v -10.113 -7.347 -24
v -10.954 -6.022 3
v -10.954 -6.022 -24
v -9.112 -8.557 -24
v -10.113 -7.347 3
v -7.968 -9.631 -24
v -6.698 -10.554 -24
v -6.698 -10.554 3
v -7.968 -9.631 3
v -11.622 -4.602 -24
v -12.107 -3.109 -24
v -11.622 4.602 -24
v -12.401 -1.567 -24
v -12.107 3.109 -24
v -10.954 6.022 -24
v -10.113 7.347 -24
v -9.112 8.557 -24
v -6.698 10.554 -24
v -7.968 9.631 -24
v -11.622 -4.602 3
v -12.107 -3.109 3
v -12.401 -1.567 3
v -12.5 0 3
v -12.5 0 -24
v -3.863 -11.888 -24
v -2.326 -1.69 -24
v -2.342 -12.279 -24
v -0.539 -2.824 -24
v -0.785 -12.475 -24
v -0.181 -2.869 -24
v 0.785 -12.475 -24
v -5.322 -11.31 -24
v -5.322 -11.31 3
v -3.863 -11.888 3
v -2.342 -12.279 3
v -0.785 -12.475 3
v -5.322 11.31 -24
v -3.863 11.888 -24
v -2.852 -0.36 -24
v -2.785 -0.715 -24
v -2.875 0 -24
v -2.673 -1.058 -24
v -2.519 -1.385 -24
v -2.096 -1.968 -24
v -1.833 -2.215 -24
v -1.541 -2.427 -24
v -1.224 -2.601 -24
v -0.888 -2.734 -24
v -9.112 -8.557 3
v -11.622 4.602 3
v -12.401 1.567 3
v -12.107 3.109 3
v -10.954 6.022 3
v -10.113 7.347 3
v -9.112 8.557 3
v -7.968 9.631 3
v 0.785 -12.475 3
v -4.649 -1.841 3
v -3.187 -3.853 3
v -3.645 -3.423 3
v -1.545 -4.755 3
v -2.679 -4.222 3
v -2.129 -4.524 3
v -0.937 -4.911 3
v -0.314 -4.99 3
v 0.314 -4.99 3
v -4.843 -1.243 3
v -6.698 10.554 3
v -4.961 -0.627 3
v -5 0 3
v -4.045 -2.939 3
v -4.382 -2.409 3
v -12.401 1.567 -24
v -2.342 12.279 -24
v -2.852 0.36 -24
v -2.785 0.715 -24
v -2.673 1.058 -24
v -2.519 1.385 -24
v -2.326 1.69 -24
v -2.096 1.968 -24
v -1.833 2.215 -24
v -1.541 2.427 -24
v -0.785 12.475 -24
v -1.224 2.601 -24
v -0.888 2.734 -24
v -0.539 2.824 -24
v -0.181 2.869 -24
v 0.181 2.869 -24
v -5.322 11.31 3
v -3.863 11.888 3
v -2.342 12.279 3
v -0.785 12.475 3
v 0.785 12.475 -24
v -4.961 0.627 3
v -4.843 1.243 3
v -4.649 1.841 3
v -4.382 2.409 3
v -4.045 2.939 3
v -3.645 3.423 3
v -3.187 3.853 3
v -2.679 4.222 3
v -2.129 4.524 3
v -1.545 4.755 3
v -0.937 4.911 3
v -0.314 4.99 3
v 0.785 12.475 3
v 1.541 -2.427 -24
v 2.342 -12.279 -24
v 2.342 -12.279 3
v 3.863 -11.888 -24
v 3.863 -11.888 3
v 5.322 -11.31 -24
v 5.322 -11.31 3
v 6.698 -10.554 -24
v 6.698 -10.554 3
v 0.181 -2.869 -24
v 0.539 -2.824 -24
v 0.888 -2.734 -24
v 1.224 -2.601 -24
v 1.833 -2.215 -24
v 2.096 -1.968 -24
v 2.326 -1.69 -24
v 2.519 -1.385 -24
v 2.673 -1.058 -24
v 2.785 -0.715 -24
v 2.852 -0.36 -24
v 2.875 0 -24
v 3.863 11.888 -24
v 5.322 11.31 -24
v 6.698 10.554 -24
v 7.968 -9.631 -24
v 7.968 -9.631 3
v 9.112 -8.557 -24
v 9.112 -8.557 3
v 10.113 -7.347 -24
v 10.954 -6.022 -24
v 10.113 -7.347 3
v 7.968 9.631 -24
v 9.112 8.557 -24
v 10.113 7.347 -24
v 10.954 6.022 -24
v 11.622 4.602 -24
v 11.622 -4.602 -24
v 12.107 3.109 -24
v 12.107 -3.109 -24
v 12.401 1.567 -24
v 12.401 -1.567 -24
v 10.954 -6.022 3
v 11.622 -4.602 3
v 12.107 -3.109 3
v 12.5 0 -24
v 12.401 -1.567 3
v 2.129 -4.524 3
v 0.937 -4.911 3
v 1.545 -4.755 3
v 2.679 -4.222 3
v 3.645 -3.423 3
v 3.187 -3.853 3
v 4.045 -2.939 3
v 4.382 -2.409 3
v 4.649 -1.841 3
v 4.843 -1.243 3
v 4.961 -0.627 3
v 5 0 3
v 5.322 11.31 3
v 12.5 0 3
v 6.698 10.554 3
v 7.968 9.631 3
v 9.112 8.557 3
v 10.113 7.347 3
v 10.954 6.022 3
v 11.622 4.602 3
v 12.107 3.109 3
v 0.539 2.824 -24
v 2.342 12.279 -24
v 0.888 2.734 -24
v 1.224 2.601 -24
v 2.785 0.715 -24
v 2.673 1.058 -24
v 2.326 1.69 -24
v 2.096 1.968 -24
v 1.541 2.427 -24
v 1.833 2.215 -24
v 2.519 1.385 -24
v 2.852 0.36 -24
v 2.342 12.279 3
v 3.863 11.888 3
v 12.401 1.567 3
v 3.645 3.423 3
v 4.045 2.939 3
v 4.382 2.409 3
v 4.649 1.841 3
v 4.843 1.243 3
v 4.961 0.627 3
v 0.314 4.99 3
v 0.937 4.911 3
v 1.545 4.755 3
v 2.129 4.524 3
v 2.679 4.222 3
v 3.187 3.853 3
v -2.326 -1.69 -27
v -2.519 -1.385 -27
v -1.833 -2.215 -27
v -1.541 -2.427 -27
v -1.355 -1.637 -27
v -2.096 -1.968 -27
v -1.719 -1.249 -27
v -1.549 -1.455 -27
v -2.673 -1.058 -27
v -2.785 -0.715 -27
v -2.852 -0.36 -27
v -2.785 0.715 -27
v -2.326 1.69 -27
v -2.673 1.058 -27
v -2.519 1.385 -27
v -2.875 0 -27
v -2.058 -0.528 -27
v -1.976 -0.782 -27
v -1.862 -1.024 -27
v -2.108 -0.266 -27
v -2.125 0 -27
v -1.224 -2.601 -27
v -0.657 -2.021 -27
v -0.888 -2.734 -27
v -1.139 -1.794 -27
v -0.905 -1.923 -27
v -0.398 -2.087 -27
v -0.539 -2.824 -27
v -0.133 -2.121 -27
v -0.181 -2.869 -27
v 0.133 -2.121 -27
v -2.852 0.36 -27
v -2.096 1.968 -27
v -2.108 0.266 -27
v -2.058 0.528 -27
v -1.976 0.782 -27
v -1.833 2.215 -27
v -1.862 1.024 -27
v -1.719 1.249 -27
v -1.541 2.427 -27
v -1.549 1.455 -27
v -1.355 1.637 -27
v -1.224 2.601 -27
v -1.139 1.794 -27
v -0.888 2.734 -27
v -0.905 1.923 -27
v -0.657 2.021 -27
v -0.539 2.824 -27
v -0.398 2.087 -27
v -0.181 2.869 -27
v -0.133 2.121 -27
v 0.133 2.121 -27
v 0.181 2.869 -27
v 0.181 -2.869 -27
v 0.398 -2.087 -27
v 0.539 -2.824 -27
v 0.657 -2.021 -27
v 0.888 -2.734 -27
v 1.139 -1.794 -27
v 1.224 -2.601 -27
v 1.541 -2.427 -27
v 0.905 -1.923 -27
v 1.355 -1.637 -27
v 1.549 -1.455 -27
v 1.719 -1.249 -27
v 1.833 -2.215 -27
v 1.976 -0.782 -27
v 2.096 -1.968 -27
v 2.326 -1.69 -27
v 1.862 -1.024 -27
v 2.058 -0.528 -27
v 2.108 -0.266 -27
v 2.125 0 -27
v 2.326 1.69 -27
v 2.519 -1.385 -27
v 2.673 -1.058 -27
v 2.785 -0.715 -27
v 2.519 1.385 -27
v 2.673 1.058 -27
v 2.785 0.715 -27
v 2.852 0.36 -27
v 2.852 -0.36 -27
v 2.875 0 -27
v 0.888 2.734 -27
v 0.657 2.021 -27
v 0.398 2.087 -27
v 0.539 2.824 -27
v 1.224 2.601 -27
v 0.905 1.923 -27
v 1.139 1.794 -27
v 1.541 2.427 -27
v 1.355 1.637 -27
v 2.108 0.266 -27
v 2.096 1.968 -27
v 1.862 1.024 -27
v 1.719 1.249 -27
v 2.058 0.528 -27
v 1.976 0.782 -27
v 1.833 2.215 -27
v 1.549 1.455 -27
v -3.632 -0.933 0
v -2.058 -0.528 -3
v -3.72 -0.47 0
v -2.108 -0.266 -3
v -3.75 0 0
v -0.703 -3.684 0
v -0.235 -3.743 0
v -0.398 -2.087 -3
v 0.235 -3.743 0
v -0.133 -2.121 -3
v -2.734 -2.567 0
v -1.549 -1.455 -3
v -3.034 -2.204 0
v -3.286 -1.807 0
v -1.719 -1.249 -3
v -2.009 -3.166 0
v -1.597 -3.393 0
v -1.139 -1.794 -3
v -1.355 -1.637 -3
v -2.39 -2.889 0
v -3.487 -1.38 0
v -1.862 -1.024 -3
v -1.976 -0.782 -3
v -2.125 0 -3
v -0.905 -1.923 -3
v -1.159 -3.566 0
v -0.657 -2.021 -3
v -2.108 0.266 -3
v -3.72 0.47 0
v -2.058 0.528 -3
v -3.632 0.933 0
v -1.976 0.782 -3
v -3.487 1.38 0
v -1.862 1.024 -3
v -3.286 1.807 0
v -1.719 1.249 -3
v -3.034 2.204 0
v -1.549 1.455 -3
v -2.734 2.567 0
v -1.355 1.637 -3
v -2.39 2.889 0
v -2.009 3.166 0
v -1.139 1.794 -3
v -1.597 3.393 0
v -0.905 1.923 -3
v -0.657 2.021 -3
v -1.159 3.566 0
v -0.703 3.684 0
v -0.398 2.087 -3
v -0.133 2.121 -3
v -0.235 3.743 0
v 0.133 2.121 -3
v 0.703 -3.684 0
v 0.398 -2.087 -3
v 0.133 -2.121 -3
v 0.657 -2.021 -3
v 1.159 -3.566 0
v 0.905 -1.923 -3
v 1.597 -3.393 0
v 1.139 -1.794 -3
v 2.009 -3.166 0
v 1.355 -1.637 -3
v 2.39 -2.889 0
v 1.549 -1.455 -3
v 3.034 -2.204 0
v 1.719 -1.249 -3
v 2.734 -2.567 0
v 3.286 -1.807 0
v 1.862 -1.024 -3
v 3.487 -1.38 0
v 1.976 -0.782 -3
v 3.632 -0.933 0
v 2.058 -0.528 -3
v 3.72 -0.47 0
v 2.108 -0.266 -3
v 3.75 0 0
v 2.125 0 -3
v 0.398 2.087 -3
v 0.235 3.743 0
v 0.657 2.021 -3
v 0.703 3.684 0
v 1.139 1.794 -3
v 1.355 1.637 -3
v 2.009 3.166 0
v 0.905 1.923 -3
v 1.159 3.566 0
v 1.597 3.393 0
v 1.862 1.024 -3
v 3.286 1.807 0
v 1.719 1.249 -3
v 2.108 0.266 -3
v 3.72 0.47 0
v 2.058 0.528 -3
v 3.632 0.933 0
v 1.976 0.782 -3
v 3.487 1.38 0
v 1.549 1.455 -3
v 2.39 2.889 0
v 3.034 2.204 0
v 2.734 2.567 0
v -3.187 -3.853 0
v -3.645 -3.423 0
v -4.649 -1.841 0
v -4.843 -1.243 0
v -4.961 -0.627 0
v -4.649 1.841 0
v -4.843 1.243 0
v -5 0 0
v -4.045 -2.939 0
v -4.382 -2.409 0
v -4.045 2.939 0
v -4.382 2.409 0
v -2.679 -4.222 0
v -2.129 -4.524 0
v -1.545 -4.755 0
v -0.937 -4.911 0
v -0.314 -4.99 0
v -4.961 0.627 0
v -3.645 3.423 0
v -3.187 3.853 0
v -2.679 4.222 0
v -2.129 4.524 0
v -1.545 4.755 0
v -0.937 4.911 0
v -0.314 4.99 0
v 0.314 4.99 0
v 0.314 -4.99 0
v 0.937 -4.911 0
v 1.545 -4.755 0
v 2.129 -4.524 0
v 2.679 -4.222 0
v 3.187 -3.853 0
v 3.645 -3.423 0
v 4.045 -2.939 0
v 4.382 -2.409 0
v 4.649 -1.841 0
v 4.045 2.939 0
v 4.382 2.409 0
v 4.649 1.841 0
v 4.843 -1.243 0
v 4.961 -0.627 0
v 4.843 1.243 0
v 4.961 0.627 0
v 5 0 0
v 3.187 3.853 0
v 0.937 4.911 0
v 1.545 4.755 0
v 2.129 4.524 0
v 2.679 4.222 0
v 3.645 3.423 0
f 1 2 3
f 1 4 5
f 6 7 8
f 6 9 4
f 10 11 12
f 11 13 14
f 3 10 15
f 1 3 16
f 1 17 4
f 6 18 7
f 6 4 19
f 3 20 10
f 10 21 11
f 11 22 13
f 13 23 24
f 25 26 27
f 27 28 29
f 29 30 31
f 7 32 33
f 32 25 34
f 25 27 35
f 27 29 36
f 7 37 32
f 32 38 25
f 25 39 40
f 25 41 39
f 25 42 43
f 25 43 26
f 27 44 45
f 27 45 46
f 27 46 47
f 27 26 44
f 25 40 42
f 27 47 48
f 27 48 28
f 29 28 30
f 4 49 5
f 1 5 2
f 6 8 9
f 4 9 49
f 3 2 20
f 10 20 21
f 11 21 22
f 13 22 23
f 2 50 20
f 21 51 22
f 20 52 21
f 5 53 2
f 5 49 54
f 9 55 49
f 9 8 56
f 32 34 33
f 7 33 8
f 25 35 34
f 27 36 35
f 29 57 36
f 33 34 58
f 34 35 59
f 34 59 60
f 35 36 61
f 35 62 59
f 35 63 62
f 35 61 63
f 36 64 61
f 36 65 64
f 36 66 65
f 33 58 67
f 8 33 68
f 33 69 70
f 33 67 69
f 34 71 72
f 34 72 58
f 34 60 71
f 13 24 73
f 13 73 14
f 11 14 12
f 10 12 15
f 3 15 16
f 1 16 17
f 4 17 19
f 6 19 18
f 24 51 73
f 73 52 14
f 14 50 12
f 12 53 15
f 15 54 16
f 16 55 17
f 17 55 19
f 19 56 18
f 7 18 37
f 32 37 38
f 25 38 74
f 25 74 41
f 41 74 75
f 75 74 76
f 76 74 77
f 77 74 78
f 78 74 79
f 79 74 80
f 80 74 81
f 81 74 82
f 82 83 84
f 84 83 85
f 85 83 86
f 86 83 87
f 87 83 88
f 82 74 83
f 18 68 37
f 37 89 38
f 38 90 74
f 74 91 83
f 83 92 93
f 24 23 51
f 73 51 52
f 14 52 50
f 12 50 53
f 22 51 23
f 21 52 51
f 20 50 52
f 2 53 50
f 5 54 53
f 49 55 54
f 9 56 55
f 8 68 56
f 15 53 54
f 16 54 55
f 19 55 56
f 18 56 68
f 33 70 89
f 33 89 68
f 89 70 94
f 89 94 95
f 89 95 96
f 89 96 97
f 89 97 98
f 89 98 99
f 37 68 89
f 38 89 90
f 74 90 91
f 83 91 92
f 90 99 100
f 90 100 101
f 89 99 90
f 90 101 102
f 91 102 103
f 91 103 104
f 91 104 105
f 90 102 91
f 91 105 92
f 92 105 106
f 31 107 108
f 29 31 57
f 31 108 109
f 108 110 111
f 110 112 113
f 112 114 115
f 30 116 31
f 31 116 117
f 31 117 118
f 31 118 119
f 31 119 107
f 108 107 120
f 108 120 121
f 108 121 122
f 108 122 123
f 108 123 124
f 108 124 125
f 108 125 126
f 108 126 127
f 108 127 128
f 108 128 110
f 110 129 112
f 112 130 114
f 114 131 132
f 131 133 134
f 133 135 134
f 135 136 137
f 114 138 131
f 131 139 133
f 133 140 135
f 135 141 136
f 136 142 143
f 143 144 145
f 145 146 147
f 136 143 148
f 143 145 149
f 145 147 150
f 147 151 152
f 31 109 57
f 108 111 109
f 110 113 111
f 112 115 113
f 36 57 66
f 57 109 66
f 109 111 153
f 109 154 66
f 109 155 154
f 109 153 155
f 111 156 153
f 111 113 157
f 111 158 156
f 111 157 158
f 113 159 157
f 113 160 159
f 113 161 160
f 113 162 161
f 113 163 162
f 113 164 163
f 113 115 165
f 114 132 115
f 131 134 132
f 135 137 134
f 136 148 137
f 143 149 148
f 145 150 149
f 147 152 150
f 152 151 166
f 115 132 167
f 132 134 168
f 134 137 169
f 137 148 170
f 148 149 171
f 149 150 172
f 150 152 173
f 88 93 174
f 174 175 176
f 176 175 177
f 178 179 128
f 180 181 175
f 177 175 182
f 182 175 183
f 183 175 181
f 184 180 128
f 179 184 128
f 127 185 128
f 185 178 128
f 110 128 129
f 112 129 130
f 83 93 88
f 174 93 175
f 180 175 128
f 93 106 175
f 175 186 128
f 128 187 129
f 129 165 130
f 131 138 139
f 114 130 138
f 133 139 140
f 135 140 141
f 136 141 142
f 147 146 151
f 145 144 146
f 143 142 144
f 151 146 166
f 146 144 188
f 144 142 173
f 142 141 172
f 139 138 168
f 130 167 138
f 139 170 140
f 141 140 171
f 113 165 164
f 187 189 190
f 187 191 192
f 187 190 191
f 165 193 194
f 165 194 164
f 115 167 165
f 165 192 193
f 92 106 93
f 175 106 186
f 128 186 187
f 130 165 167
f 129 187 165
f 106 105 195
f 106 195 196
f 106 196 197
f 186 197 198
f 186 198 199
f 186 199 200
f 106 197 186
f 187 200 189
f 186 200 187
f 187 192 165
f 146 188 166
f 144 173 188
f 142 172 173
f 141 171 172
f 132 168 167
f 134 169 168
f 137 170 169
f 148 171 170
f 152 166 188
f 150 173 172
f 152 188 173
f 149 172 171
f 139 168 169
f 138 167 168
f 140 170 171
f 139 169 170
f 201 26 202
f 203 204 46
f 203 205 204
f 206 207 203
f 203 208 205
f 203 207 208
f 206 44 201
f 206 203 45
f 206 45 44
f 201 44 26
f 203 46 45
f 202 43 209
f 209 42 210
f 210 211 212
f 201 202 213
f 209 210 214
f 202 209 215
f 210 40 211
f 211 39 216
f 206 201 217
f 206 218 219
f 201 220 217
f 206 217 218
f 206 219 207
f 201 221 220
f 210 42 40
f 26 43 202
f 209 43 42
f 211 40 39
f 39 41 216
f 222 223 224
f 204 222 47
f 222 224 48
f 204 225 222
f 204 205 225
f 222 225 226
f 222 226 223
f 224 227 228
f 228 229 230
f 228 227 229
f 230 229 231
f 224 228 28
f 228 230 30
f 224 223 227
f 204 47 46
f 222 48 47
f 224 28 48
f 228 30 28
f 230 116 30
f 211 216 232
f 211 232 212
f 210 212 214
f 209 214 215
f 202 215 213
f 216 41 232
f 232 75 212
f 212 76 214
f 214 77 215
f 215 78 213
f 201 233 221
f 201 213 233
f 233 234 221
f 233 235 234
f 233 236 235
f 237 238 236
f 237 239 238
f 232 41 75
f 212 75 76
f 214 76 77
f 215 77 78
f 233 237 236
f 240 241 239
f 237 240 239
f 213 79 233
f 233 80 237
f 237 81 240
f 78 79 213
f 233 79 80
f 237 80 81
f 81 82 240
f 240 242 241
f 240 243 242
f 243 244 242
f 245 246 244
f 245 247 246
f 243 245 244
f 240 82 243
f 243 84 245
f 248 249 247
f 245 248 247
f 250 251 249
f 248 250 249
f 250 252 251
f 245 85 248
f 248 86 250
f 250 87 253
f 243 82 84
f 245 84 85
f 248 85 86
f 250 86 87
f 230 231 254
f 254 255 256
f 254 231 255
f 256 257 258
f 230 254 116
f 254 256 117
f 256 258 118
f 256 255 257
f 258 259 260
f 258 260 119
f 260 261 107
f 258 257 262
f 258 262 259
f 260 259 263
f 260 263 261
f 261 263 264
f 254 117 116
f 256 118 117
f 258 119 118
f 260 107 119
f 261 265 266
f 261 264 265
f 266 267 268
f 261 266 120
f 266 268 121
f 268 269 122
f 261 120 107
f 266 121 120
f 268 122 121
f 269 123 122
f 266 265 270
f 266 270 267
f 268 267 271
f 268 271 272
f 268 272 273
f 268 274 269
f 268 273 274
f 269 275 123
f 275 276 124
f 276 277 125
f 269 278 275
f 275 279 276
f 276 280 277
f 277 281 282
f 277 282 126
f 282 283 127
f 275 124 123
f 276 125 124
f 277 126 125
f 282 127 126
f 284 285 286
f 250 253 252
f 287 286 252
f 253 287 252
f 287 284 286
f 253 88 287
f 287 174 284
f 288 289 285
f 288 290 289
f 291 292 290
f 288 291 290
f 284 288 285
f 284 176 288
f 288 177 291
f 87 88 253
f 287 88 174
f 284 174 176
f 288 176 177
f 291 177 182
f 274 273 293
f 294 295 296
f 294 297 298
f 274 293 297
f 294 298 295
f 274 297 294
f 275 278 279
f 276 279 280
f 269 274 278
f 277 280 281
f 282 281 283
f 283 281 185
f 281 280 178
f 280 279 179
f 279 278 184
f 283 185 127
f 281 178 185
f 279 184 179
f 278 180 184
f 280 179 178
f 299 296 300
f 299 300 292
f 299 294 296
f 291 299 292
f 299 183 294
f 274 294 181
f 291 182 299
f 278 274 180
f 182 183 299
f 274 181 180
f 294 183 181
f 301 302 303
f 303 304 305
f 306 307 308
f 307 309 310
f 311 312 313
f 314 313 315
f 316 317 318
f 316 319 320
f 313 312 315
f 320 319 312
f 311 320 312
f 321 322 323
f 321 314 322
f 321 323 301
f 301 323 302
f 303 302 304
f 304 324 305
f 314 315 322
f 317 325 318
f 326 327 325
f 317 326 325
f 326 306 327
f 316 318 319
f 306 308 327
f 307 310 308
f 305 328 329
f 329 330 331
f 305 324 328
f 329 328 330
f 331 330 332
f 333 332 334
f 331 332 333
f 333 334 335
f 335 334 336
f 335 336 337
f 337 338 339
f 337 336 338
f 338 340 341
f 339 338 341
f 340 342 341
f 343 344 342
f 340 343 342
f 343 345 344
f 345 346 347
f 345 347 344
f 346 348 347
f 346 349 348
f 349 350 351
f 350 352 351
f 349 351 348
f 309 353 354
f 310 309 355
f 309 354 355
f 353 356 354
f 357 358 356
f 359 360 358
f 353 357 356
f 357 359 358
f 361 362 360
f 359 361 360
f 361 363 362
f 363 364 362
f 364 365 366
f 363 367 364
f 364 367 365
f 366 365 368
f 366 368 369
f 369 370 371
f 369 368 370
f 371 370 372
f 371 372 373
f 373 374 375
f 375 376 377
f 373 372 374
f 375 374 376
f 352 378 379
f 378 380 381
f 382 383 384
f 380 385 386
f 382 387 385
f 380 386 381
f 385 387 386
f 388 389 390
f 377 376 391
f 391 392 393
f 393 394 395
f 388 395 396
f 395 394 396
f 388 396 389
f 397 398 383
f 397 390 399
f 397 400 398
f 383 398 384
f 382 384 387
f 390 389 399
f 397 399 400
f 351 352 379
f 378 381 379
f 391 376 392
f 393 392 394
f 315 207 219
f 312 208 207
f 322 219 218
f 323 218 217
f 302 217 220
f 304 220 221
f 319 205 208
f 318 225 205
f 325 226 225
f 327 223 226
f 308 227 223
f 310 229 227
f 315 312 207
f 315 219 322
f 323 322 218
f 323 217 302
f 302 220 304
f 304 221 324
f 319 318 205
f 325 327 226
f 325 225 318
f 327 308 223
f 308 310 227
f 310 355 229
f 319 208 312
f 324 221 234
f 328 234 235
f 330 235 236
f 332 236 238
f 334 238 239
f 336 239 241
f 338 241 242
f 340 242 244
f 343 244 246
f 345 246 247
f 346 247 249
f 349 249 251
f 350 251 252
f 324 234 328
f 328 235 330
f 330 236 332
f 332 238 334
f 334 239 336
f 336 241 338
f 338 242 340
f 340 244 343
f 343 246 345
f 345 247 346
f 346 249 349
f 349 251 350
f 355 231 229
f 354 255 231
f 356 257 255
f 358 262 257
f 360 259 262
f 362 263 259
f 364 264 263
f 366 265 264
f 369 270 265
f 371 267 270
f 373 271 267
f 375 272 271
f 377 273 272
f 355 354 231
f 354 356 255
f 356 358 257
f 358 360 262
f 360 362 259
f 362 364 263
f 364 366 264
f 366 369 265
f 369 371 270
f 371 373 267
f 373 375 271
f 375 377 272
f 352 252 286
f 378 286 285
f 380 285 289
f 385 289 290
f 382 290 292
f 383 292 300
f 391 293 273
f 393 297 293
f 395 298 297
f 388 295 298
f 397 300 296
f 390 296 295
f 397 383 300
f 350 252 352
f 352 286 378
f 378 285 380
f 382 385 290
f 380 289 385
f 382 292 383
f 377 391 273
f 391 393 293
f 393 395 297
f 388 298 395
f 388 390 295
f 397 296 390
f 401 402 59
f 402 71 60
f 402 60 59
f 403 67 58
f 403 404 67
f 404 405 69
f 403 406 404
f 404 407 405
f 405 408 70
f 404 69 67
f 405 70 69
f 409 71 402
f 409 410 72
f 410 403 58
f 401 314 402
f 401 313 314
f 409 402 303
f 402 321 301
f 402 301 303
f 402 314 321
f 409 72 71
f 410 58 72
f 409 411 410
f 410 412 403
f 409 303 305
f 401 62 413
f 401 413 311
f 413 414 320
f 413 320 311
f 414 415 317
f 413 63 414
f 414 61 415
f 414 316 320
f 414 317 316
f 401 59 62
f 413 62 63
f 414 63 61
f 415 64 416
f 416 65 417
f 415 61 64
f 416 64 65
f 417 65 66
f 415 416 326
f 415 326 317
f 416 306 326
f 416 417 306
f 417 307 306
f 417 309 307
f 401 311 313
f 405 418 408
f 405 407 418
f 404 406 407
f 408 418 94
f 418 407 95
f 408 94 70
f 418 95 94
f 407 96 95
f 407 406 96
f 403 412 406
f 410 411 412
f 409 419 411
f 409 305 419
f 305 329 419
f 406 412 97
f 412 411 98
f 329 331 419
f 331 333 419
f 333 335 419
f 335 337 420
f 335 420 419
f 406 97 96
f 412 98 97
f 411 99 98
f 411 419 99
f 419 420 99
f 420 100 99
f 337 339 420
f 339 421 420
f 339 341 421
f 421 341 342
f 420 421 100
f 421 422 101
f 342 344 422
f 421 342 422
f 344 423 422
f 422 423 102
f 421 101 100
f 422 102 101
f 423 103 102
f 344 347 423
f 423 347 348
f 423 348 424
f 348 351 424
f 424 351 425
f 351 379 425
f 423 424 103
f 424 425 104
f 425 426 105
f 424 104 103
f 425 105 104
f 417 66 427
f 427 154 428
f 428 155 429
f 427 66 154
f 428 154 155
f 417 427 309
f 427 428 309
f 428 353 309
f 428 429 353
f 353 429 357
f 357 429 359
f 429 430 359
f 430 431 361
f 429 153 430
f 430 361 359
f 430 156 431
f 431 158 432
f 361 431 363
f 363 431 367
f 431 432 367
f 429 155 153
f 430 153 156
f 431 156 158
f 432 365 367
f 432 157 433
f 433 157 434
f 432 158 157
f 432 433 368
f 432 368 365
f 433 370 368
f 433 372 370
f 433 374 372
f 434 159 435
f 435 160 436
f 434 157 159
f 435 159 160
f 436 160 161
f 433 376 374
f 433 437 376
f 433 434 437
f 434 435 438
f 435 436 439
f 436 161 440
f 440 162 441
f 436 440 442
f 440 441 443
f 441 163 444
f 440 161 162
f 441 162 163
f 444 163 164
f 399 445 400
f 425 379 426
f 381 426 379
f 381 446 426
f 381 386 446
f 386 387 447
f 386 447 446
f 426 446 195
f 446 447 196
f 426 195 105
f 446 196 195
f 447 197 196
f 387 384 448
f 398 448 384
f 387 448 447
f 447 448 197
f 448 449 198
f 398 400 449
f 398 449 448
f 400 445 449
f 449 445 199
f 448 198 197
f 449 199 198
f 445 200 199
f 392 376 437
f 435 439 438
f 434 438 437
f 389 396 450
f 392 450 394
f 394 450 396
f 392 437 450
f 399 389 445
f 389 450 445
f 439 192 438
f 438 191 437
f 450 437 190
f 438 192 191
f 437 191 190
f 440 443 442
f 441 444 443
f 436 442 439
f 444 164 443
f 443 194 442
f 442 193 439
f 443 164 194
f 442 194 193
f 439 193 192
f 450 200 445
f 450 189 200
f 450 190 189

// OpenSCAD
$fn = 50;


difference() {
	union() {
		translate(v = [0, 0, -24.0000000000]) {
			cylinder(h = 27, r = 12.5000000000);
		}
		#translate(v = [0, 0, -27.0000000000]) {
			cylinder(h = 27, r = 2.8750000000);
		}
	}
	union() {
		translate(v = [0, 0, 0]) {
			rotate(a = [0, 0, 0]) {
				difference() {
					union() {
						translate(v = [0, 0, -27.0000000000]) {
							cylinder(h = 27, r = 2.0000000000);
						}
						translate(v = [0, 0, -3]) {
							cylinder(h = 3, r1 = 2.1250000000, r2 = 3.7500000000);
						}
						translate(v = [0, 0, -27.0000000000]) {
							cylinder(h = 27, r = 2.1250000000);
						}
						translate(v = [0, 0, -27.0000000000]) {
							cylinder(h = 27, r = 2.0000000000);
						}
					}
					union();
				}
			}
		}
		#cylinder(h = 3, r = 5.0000000000);
	}
}
